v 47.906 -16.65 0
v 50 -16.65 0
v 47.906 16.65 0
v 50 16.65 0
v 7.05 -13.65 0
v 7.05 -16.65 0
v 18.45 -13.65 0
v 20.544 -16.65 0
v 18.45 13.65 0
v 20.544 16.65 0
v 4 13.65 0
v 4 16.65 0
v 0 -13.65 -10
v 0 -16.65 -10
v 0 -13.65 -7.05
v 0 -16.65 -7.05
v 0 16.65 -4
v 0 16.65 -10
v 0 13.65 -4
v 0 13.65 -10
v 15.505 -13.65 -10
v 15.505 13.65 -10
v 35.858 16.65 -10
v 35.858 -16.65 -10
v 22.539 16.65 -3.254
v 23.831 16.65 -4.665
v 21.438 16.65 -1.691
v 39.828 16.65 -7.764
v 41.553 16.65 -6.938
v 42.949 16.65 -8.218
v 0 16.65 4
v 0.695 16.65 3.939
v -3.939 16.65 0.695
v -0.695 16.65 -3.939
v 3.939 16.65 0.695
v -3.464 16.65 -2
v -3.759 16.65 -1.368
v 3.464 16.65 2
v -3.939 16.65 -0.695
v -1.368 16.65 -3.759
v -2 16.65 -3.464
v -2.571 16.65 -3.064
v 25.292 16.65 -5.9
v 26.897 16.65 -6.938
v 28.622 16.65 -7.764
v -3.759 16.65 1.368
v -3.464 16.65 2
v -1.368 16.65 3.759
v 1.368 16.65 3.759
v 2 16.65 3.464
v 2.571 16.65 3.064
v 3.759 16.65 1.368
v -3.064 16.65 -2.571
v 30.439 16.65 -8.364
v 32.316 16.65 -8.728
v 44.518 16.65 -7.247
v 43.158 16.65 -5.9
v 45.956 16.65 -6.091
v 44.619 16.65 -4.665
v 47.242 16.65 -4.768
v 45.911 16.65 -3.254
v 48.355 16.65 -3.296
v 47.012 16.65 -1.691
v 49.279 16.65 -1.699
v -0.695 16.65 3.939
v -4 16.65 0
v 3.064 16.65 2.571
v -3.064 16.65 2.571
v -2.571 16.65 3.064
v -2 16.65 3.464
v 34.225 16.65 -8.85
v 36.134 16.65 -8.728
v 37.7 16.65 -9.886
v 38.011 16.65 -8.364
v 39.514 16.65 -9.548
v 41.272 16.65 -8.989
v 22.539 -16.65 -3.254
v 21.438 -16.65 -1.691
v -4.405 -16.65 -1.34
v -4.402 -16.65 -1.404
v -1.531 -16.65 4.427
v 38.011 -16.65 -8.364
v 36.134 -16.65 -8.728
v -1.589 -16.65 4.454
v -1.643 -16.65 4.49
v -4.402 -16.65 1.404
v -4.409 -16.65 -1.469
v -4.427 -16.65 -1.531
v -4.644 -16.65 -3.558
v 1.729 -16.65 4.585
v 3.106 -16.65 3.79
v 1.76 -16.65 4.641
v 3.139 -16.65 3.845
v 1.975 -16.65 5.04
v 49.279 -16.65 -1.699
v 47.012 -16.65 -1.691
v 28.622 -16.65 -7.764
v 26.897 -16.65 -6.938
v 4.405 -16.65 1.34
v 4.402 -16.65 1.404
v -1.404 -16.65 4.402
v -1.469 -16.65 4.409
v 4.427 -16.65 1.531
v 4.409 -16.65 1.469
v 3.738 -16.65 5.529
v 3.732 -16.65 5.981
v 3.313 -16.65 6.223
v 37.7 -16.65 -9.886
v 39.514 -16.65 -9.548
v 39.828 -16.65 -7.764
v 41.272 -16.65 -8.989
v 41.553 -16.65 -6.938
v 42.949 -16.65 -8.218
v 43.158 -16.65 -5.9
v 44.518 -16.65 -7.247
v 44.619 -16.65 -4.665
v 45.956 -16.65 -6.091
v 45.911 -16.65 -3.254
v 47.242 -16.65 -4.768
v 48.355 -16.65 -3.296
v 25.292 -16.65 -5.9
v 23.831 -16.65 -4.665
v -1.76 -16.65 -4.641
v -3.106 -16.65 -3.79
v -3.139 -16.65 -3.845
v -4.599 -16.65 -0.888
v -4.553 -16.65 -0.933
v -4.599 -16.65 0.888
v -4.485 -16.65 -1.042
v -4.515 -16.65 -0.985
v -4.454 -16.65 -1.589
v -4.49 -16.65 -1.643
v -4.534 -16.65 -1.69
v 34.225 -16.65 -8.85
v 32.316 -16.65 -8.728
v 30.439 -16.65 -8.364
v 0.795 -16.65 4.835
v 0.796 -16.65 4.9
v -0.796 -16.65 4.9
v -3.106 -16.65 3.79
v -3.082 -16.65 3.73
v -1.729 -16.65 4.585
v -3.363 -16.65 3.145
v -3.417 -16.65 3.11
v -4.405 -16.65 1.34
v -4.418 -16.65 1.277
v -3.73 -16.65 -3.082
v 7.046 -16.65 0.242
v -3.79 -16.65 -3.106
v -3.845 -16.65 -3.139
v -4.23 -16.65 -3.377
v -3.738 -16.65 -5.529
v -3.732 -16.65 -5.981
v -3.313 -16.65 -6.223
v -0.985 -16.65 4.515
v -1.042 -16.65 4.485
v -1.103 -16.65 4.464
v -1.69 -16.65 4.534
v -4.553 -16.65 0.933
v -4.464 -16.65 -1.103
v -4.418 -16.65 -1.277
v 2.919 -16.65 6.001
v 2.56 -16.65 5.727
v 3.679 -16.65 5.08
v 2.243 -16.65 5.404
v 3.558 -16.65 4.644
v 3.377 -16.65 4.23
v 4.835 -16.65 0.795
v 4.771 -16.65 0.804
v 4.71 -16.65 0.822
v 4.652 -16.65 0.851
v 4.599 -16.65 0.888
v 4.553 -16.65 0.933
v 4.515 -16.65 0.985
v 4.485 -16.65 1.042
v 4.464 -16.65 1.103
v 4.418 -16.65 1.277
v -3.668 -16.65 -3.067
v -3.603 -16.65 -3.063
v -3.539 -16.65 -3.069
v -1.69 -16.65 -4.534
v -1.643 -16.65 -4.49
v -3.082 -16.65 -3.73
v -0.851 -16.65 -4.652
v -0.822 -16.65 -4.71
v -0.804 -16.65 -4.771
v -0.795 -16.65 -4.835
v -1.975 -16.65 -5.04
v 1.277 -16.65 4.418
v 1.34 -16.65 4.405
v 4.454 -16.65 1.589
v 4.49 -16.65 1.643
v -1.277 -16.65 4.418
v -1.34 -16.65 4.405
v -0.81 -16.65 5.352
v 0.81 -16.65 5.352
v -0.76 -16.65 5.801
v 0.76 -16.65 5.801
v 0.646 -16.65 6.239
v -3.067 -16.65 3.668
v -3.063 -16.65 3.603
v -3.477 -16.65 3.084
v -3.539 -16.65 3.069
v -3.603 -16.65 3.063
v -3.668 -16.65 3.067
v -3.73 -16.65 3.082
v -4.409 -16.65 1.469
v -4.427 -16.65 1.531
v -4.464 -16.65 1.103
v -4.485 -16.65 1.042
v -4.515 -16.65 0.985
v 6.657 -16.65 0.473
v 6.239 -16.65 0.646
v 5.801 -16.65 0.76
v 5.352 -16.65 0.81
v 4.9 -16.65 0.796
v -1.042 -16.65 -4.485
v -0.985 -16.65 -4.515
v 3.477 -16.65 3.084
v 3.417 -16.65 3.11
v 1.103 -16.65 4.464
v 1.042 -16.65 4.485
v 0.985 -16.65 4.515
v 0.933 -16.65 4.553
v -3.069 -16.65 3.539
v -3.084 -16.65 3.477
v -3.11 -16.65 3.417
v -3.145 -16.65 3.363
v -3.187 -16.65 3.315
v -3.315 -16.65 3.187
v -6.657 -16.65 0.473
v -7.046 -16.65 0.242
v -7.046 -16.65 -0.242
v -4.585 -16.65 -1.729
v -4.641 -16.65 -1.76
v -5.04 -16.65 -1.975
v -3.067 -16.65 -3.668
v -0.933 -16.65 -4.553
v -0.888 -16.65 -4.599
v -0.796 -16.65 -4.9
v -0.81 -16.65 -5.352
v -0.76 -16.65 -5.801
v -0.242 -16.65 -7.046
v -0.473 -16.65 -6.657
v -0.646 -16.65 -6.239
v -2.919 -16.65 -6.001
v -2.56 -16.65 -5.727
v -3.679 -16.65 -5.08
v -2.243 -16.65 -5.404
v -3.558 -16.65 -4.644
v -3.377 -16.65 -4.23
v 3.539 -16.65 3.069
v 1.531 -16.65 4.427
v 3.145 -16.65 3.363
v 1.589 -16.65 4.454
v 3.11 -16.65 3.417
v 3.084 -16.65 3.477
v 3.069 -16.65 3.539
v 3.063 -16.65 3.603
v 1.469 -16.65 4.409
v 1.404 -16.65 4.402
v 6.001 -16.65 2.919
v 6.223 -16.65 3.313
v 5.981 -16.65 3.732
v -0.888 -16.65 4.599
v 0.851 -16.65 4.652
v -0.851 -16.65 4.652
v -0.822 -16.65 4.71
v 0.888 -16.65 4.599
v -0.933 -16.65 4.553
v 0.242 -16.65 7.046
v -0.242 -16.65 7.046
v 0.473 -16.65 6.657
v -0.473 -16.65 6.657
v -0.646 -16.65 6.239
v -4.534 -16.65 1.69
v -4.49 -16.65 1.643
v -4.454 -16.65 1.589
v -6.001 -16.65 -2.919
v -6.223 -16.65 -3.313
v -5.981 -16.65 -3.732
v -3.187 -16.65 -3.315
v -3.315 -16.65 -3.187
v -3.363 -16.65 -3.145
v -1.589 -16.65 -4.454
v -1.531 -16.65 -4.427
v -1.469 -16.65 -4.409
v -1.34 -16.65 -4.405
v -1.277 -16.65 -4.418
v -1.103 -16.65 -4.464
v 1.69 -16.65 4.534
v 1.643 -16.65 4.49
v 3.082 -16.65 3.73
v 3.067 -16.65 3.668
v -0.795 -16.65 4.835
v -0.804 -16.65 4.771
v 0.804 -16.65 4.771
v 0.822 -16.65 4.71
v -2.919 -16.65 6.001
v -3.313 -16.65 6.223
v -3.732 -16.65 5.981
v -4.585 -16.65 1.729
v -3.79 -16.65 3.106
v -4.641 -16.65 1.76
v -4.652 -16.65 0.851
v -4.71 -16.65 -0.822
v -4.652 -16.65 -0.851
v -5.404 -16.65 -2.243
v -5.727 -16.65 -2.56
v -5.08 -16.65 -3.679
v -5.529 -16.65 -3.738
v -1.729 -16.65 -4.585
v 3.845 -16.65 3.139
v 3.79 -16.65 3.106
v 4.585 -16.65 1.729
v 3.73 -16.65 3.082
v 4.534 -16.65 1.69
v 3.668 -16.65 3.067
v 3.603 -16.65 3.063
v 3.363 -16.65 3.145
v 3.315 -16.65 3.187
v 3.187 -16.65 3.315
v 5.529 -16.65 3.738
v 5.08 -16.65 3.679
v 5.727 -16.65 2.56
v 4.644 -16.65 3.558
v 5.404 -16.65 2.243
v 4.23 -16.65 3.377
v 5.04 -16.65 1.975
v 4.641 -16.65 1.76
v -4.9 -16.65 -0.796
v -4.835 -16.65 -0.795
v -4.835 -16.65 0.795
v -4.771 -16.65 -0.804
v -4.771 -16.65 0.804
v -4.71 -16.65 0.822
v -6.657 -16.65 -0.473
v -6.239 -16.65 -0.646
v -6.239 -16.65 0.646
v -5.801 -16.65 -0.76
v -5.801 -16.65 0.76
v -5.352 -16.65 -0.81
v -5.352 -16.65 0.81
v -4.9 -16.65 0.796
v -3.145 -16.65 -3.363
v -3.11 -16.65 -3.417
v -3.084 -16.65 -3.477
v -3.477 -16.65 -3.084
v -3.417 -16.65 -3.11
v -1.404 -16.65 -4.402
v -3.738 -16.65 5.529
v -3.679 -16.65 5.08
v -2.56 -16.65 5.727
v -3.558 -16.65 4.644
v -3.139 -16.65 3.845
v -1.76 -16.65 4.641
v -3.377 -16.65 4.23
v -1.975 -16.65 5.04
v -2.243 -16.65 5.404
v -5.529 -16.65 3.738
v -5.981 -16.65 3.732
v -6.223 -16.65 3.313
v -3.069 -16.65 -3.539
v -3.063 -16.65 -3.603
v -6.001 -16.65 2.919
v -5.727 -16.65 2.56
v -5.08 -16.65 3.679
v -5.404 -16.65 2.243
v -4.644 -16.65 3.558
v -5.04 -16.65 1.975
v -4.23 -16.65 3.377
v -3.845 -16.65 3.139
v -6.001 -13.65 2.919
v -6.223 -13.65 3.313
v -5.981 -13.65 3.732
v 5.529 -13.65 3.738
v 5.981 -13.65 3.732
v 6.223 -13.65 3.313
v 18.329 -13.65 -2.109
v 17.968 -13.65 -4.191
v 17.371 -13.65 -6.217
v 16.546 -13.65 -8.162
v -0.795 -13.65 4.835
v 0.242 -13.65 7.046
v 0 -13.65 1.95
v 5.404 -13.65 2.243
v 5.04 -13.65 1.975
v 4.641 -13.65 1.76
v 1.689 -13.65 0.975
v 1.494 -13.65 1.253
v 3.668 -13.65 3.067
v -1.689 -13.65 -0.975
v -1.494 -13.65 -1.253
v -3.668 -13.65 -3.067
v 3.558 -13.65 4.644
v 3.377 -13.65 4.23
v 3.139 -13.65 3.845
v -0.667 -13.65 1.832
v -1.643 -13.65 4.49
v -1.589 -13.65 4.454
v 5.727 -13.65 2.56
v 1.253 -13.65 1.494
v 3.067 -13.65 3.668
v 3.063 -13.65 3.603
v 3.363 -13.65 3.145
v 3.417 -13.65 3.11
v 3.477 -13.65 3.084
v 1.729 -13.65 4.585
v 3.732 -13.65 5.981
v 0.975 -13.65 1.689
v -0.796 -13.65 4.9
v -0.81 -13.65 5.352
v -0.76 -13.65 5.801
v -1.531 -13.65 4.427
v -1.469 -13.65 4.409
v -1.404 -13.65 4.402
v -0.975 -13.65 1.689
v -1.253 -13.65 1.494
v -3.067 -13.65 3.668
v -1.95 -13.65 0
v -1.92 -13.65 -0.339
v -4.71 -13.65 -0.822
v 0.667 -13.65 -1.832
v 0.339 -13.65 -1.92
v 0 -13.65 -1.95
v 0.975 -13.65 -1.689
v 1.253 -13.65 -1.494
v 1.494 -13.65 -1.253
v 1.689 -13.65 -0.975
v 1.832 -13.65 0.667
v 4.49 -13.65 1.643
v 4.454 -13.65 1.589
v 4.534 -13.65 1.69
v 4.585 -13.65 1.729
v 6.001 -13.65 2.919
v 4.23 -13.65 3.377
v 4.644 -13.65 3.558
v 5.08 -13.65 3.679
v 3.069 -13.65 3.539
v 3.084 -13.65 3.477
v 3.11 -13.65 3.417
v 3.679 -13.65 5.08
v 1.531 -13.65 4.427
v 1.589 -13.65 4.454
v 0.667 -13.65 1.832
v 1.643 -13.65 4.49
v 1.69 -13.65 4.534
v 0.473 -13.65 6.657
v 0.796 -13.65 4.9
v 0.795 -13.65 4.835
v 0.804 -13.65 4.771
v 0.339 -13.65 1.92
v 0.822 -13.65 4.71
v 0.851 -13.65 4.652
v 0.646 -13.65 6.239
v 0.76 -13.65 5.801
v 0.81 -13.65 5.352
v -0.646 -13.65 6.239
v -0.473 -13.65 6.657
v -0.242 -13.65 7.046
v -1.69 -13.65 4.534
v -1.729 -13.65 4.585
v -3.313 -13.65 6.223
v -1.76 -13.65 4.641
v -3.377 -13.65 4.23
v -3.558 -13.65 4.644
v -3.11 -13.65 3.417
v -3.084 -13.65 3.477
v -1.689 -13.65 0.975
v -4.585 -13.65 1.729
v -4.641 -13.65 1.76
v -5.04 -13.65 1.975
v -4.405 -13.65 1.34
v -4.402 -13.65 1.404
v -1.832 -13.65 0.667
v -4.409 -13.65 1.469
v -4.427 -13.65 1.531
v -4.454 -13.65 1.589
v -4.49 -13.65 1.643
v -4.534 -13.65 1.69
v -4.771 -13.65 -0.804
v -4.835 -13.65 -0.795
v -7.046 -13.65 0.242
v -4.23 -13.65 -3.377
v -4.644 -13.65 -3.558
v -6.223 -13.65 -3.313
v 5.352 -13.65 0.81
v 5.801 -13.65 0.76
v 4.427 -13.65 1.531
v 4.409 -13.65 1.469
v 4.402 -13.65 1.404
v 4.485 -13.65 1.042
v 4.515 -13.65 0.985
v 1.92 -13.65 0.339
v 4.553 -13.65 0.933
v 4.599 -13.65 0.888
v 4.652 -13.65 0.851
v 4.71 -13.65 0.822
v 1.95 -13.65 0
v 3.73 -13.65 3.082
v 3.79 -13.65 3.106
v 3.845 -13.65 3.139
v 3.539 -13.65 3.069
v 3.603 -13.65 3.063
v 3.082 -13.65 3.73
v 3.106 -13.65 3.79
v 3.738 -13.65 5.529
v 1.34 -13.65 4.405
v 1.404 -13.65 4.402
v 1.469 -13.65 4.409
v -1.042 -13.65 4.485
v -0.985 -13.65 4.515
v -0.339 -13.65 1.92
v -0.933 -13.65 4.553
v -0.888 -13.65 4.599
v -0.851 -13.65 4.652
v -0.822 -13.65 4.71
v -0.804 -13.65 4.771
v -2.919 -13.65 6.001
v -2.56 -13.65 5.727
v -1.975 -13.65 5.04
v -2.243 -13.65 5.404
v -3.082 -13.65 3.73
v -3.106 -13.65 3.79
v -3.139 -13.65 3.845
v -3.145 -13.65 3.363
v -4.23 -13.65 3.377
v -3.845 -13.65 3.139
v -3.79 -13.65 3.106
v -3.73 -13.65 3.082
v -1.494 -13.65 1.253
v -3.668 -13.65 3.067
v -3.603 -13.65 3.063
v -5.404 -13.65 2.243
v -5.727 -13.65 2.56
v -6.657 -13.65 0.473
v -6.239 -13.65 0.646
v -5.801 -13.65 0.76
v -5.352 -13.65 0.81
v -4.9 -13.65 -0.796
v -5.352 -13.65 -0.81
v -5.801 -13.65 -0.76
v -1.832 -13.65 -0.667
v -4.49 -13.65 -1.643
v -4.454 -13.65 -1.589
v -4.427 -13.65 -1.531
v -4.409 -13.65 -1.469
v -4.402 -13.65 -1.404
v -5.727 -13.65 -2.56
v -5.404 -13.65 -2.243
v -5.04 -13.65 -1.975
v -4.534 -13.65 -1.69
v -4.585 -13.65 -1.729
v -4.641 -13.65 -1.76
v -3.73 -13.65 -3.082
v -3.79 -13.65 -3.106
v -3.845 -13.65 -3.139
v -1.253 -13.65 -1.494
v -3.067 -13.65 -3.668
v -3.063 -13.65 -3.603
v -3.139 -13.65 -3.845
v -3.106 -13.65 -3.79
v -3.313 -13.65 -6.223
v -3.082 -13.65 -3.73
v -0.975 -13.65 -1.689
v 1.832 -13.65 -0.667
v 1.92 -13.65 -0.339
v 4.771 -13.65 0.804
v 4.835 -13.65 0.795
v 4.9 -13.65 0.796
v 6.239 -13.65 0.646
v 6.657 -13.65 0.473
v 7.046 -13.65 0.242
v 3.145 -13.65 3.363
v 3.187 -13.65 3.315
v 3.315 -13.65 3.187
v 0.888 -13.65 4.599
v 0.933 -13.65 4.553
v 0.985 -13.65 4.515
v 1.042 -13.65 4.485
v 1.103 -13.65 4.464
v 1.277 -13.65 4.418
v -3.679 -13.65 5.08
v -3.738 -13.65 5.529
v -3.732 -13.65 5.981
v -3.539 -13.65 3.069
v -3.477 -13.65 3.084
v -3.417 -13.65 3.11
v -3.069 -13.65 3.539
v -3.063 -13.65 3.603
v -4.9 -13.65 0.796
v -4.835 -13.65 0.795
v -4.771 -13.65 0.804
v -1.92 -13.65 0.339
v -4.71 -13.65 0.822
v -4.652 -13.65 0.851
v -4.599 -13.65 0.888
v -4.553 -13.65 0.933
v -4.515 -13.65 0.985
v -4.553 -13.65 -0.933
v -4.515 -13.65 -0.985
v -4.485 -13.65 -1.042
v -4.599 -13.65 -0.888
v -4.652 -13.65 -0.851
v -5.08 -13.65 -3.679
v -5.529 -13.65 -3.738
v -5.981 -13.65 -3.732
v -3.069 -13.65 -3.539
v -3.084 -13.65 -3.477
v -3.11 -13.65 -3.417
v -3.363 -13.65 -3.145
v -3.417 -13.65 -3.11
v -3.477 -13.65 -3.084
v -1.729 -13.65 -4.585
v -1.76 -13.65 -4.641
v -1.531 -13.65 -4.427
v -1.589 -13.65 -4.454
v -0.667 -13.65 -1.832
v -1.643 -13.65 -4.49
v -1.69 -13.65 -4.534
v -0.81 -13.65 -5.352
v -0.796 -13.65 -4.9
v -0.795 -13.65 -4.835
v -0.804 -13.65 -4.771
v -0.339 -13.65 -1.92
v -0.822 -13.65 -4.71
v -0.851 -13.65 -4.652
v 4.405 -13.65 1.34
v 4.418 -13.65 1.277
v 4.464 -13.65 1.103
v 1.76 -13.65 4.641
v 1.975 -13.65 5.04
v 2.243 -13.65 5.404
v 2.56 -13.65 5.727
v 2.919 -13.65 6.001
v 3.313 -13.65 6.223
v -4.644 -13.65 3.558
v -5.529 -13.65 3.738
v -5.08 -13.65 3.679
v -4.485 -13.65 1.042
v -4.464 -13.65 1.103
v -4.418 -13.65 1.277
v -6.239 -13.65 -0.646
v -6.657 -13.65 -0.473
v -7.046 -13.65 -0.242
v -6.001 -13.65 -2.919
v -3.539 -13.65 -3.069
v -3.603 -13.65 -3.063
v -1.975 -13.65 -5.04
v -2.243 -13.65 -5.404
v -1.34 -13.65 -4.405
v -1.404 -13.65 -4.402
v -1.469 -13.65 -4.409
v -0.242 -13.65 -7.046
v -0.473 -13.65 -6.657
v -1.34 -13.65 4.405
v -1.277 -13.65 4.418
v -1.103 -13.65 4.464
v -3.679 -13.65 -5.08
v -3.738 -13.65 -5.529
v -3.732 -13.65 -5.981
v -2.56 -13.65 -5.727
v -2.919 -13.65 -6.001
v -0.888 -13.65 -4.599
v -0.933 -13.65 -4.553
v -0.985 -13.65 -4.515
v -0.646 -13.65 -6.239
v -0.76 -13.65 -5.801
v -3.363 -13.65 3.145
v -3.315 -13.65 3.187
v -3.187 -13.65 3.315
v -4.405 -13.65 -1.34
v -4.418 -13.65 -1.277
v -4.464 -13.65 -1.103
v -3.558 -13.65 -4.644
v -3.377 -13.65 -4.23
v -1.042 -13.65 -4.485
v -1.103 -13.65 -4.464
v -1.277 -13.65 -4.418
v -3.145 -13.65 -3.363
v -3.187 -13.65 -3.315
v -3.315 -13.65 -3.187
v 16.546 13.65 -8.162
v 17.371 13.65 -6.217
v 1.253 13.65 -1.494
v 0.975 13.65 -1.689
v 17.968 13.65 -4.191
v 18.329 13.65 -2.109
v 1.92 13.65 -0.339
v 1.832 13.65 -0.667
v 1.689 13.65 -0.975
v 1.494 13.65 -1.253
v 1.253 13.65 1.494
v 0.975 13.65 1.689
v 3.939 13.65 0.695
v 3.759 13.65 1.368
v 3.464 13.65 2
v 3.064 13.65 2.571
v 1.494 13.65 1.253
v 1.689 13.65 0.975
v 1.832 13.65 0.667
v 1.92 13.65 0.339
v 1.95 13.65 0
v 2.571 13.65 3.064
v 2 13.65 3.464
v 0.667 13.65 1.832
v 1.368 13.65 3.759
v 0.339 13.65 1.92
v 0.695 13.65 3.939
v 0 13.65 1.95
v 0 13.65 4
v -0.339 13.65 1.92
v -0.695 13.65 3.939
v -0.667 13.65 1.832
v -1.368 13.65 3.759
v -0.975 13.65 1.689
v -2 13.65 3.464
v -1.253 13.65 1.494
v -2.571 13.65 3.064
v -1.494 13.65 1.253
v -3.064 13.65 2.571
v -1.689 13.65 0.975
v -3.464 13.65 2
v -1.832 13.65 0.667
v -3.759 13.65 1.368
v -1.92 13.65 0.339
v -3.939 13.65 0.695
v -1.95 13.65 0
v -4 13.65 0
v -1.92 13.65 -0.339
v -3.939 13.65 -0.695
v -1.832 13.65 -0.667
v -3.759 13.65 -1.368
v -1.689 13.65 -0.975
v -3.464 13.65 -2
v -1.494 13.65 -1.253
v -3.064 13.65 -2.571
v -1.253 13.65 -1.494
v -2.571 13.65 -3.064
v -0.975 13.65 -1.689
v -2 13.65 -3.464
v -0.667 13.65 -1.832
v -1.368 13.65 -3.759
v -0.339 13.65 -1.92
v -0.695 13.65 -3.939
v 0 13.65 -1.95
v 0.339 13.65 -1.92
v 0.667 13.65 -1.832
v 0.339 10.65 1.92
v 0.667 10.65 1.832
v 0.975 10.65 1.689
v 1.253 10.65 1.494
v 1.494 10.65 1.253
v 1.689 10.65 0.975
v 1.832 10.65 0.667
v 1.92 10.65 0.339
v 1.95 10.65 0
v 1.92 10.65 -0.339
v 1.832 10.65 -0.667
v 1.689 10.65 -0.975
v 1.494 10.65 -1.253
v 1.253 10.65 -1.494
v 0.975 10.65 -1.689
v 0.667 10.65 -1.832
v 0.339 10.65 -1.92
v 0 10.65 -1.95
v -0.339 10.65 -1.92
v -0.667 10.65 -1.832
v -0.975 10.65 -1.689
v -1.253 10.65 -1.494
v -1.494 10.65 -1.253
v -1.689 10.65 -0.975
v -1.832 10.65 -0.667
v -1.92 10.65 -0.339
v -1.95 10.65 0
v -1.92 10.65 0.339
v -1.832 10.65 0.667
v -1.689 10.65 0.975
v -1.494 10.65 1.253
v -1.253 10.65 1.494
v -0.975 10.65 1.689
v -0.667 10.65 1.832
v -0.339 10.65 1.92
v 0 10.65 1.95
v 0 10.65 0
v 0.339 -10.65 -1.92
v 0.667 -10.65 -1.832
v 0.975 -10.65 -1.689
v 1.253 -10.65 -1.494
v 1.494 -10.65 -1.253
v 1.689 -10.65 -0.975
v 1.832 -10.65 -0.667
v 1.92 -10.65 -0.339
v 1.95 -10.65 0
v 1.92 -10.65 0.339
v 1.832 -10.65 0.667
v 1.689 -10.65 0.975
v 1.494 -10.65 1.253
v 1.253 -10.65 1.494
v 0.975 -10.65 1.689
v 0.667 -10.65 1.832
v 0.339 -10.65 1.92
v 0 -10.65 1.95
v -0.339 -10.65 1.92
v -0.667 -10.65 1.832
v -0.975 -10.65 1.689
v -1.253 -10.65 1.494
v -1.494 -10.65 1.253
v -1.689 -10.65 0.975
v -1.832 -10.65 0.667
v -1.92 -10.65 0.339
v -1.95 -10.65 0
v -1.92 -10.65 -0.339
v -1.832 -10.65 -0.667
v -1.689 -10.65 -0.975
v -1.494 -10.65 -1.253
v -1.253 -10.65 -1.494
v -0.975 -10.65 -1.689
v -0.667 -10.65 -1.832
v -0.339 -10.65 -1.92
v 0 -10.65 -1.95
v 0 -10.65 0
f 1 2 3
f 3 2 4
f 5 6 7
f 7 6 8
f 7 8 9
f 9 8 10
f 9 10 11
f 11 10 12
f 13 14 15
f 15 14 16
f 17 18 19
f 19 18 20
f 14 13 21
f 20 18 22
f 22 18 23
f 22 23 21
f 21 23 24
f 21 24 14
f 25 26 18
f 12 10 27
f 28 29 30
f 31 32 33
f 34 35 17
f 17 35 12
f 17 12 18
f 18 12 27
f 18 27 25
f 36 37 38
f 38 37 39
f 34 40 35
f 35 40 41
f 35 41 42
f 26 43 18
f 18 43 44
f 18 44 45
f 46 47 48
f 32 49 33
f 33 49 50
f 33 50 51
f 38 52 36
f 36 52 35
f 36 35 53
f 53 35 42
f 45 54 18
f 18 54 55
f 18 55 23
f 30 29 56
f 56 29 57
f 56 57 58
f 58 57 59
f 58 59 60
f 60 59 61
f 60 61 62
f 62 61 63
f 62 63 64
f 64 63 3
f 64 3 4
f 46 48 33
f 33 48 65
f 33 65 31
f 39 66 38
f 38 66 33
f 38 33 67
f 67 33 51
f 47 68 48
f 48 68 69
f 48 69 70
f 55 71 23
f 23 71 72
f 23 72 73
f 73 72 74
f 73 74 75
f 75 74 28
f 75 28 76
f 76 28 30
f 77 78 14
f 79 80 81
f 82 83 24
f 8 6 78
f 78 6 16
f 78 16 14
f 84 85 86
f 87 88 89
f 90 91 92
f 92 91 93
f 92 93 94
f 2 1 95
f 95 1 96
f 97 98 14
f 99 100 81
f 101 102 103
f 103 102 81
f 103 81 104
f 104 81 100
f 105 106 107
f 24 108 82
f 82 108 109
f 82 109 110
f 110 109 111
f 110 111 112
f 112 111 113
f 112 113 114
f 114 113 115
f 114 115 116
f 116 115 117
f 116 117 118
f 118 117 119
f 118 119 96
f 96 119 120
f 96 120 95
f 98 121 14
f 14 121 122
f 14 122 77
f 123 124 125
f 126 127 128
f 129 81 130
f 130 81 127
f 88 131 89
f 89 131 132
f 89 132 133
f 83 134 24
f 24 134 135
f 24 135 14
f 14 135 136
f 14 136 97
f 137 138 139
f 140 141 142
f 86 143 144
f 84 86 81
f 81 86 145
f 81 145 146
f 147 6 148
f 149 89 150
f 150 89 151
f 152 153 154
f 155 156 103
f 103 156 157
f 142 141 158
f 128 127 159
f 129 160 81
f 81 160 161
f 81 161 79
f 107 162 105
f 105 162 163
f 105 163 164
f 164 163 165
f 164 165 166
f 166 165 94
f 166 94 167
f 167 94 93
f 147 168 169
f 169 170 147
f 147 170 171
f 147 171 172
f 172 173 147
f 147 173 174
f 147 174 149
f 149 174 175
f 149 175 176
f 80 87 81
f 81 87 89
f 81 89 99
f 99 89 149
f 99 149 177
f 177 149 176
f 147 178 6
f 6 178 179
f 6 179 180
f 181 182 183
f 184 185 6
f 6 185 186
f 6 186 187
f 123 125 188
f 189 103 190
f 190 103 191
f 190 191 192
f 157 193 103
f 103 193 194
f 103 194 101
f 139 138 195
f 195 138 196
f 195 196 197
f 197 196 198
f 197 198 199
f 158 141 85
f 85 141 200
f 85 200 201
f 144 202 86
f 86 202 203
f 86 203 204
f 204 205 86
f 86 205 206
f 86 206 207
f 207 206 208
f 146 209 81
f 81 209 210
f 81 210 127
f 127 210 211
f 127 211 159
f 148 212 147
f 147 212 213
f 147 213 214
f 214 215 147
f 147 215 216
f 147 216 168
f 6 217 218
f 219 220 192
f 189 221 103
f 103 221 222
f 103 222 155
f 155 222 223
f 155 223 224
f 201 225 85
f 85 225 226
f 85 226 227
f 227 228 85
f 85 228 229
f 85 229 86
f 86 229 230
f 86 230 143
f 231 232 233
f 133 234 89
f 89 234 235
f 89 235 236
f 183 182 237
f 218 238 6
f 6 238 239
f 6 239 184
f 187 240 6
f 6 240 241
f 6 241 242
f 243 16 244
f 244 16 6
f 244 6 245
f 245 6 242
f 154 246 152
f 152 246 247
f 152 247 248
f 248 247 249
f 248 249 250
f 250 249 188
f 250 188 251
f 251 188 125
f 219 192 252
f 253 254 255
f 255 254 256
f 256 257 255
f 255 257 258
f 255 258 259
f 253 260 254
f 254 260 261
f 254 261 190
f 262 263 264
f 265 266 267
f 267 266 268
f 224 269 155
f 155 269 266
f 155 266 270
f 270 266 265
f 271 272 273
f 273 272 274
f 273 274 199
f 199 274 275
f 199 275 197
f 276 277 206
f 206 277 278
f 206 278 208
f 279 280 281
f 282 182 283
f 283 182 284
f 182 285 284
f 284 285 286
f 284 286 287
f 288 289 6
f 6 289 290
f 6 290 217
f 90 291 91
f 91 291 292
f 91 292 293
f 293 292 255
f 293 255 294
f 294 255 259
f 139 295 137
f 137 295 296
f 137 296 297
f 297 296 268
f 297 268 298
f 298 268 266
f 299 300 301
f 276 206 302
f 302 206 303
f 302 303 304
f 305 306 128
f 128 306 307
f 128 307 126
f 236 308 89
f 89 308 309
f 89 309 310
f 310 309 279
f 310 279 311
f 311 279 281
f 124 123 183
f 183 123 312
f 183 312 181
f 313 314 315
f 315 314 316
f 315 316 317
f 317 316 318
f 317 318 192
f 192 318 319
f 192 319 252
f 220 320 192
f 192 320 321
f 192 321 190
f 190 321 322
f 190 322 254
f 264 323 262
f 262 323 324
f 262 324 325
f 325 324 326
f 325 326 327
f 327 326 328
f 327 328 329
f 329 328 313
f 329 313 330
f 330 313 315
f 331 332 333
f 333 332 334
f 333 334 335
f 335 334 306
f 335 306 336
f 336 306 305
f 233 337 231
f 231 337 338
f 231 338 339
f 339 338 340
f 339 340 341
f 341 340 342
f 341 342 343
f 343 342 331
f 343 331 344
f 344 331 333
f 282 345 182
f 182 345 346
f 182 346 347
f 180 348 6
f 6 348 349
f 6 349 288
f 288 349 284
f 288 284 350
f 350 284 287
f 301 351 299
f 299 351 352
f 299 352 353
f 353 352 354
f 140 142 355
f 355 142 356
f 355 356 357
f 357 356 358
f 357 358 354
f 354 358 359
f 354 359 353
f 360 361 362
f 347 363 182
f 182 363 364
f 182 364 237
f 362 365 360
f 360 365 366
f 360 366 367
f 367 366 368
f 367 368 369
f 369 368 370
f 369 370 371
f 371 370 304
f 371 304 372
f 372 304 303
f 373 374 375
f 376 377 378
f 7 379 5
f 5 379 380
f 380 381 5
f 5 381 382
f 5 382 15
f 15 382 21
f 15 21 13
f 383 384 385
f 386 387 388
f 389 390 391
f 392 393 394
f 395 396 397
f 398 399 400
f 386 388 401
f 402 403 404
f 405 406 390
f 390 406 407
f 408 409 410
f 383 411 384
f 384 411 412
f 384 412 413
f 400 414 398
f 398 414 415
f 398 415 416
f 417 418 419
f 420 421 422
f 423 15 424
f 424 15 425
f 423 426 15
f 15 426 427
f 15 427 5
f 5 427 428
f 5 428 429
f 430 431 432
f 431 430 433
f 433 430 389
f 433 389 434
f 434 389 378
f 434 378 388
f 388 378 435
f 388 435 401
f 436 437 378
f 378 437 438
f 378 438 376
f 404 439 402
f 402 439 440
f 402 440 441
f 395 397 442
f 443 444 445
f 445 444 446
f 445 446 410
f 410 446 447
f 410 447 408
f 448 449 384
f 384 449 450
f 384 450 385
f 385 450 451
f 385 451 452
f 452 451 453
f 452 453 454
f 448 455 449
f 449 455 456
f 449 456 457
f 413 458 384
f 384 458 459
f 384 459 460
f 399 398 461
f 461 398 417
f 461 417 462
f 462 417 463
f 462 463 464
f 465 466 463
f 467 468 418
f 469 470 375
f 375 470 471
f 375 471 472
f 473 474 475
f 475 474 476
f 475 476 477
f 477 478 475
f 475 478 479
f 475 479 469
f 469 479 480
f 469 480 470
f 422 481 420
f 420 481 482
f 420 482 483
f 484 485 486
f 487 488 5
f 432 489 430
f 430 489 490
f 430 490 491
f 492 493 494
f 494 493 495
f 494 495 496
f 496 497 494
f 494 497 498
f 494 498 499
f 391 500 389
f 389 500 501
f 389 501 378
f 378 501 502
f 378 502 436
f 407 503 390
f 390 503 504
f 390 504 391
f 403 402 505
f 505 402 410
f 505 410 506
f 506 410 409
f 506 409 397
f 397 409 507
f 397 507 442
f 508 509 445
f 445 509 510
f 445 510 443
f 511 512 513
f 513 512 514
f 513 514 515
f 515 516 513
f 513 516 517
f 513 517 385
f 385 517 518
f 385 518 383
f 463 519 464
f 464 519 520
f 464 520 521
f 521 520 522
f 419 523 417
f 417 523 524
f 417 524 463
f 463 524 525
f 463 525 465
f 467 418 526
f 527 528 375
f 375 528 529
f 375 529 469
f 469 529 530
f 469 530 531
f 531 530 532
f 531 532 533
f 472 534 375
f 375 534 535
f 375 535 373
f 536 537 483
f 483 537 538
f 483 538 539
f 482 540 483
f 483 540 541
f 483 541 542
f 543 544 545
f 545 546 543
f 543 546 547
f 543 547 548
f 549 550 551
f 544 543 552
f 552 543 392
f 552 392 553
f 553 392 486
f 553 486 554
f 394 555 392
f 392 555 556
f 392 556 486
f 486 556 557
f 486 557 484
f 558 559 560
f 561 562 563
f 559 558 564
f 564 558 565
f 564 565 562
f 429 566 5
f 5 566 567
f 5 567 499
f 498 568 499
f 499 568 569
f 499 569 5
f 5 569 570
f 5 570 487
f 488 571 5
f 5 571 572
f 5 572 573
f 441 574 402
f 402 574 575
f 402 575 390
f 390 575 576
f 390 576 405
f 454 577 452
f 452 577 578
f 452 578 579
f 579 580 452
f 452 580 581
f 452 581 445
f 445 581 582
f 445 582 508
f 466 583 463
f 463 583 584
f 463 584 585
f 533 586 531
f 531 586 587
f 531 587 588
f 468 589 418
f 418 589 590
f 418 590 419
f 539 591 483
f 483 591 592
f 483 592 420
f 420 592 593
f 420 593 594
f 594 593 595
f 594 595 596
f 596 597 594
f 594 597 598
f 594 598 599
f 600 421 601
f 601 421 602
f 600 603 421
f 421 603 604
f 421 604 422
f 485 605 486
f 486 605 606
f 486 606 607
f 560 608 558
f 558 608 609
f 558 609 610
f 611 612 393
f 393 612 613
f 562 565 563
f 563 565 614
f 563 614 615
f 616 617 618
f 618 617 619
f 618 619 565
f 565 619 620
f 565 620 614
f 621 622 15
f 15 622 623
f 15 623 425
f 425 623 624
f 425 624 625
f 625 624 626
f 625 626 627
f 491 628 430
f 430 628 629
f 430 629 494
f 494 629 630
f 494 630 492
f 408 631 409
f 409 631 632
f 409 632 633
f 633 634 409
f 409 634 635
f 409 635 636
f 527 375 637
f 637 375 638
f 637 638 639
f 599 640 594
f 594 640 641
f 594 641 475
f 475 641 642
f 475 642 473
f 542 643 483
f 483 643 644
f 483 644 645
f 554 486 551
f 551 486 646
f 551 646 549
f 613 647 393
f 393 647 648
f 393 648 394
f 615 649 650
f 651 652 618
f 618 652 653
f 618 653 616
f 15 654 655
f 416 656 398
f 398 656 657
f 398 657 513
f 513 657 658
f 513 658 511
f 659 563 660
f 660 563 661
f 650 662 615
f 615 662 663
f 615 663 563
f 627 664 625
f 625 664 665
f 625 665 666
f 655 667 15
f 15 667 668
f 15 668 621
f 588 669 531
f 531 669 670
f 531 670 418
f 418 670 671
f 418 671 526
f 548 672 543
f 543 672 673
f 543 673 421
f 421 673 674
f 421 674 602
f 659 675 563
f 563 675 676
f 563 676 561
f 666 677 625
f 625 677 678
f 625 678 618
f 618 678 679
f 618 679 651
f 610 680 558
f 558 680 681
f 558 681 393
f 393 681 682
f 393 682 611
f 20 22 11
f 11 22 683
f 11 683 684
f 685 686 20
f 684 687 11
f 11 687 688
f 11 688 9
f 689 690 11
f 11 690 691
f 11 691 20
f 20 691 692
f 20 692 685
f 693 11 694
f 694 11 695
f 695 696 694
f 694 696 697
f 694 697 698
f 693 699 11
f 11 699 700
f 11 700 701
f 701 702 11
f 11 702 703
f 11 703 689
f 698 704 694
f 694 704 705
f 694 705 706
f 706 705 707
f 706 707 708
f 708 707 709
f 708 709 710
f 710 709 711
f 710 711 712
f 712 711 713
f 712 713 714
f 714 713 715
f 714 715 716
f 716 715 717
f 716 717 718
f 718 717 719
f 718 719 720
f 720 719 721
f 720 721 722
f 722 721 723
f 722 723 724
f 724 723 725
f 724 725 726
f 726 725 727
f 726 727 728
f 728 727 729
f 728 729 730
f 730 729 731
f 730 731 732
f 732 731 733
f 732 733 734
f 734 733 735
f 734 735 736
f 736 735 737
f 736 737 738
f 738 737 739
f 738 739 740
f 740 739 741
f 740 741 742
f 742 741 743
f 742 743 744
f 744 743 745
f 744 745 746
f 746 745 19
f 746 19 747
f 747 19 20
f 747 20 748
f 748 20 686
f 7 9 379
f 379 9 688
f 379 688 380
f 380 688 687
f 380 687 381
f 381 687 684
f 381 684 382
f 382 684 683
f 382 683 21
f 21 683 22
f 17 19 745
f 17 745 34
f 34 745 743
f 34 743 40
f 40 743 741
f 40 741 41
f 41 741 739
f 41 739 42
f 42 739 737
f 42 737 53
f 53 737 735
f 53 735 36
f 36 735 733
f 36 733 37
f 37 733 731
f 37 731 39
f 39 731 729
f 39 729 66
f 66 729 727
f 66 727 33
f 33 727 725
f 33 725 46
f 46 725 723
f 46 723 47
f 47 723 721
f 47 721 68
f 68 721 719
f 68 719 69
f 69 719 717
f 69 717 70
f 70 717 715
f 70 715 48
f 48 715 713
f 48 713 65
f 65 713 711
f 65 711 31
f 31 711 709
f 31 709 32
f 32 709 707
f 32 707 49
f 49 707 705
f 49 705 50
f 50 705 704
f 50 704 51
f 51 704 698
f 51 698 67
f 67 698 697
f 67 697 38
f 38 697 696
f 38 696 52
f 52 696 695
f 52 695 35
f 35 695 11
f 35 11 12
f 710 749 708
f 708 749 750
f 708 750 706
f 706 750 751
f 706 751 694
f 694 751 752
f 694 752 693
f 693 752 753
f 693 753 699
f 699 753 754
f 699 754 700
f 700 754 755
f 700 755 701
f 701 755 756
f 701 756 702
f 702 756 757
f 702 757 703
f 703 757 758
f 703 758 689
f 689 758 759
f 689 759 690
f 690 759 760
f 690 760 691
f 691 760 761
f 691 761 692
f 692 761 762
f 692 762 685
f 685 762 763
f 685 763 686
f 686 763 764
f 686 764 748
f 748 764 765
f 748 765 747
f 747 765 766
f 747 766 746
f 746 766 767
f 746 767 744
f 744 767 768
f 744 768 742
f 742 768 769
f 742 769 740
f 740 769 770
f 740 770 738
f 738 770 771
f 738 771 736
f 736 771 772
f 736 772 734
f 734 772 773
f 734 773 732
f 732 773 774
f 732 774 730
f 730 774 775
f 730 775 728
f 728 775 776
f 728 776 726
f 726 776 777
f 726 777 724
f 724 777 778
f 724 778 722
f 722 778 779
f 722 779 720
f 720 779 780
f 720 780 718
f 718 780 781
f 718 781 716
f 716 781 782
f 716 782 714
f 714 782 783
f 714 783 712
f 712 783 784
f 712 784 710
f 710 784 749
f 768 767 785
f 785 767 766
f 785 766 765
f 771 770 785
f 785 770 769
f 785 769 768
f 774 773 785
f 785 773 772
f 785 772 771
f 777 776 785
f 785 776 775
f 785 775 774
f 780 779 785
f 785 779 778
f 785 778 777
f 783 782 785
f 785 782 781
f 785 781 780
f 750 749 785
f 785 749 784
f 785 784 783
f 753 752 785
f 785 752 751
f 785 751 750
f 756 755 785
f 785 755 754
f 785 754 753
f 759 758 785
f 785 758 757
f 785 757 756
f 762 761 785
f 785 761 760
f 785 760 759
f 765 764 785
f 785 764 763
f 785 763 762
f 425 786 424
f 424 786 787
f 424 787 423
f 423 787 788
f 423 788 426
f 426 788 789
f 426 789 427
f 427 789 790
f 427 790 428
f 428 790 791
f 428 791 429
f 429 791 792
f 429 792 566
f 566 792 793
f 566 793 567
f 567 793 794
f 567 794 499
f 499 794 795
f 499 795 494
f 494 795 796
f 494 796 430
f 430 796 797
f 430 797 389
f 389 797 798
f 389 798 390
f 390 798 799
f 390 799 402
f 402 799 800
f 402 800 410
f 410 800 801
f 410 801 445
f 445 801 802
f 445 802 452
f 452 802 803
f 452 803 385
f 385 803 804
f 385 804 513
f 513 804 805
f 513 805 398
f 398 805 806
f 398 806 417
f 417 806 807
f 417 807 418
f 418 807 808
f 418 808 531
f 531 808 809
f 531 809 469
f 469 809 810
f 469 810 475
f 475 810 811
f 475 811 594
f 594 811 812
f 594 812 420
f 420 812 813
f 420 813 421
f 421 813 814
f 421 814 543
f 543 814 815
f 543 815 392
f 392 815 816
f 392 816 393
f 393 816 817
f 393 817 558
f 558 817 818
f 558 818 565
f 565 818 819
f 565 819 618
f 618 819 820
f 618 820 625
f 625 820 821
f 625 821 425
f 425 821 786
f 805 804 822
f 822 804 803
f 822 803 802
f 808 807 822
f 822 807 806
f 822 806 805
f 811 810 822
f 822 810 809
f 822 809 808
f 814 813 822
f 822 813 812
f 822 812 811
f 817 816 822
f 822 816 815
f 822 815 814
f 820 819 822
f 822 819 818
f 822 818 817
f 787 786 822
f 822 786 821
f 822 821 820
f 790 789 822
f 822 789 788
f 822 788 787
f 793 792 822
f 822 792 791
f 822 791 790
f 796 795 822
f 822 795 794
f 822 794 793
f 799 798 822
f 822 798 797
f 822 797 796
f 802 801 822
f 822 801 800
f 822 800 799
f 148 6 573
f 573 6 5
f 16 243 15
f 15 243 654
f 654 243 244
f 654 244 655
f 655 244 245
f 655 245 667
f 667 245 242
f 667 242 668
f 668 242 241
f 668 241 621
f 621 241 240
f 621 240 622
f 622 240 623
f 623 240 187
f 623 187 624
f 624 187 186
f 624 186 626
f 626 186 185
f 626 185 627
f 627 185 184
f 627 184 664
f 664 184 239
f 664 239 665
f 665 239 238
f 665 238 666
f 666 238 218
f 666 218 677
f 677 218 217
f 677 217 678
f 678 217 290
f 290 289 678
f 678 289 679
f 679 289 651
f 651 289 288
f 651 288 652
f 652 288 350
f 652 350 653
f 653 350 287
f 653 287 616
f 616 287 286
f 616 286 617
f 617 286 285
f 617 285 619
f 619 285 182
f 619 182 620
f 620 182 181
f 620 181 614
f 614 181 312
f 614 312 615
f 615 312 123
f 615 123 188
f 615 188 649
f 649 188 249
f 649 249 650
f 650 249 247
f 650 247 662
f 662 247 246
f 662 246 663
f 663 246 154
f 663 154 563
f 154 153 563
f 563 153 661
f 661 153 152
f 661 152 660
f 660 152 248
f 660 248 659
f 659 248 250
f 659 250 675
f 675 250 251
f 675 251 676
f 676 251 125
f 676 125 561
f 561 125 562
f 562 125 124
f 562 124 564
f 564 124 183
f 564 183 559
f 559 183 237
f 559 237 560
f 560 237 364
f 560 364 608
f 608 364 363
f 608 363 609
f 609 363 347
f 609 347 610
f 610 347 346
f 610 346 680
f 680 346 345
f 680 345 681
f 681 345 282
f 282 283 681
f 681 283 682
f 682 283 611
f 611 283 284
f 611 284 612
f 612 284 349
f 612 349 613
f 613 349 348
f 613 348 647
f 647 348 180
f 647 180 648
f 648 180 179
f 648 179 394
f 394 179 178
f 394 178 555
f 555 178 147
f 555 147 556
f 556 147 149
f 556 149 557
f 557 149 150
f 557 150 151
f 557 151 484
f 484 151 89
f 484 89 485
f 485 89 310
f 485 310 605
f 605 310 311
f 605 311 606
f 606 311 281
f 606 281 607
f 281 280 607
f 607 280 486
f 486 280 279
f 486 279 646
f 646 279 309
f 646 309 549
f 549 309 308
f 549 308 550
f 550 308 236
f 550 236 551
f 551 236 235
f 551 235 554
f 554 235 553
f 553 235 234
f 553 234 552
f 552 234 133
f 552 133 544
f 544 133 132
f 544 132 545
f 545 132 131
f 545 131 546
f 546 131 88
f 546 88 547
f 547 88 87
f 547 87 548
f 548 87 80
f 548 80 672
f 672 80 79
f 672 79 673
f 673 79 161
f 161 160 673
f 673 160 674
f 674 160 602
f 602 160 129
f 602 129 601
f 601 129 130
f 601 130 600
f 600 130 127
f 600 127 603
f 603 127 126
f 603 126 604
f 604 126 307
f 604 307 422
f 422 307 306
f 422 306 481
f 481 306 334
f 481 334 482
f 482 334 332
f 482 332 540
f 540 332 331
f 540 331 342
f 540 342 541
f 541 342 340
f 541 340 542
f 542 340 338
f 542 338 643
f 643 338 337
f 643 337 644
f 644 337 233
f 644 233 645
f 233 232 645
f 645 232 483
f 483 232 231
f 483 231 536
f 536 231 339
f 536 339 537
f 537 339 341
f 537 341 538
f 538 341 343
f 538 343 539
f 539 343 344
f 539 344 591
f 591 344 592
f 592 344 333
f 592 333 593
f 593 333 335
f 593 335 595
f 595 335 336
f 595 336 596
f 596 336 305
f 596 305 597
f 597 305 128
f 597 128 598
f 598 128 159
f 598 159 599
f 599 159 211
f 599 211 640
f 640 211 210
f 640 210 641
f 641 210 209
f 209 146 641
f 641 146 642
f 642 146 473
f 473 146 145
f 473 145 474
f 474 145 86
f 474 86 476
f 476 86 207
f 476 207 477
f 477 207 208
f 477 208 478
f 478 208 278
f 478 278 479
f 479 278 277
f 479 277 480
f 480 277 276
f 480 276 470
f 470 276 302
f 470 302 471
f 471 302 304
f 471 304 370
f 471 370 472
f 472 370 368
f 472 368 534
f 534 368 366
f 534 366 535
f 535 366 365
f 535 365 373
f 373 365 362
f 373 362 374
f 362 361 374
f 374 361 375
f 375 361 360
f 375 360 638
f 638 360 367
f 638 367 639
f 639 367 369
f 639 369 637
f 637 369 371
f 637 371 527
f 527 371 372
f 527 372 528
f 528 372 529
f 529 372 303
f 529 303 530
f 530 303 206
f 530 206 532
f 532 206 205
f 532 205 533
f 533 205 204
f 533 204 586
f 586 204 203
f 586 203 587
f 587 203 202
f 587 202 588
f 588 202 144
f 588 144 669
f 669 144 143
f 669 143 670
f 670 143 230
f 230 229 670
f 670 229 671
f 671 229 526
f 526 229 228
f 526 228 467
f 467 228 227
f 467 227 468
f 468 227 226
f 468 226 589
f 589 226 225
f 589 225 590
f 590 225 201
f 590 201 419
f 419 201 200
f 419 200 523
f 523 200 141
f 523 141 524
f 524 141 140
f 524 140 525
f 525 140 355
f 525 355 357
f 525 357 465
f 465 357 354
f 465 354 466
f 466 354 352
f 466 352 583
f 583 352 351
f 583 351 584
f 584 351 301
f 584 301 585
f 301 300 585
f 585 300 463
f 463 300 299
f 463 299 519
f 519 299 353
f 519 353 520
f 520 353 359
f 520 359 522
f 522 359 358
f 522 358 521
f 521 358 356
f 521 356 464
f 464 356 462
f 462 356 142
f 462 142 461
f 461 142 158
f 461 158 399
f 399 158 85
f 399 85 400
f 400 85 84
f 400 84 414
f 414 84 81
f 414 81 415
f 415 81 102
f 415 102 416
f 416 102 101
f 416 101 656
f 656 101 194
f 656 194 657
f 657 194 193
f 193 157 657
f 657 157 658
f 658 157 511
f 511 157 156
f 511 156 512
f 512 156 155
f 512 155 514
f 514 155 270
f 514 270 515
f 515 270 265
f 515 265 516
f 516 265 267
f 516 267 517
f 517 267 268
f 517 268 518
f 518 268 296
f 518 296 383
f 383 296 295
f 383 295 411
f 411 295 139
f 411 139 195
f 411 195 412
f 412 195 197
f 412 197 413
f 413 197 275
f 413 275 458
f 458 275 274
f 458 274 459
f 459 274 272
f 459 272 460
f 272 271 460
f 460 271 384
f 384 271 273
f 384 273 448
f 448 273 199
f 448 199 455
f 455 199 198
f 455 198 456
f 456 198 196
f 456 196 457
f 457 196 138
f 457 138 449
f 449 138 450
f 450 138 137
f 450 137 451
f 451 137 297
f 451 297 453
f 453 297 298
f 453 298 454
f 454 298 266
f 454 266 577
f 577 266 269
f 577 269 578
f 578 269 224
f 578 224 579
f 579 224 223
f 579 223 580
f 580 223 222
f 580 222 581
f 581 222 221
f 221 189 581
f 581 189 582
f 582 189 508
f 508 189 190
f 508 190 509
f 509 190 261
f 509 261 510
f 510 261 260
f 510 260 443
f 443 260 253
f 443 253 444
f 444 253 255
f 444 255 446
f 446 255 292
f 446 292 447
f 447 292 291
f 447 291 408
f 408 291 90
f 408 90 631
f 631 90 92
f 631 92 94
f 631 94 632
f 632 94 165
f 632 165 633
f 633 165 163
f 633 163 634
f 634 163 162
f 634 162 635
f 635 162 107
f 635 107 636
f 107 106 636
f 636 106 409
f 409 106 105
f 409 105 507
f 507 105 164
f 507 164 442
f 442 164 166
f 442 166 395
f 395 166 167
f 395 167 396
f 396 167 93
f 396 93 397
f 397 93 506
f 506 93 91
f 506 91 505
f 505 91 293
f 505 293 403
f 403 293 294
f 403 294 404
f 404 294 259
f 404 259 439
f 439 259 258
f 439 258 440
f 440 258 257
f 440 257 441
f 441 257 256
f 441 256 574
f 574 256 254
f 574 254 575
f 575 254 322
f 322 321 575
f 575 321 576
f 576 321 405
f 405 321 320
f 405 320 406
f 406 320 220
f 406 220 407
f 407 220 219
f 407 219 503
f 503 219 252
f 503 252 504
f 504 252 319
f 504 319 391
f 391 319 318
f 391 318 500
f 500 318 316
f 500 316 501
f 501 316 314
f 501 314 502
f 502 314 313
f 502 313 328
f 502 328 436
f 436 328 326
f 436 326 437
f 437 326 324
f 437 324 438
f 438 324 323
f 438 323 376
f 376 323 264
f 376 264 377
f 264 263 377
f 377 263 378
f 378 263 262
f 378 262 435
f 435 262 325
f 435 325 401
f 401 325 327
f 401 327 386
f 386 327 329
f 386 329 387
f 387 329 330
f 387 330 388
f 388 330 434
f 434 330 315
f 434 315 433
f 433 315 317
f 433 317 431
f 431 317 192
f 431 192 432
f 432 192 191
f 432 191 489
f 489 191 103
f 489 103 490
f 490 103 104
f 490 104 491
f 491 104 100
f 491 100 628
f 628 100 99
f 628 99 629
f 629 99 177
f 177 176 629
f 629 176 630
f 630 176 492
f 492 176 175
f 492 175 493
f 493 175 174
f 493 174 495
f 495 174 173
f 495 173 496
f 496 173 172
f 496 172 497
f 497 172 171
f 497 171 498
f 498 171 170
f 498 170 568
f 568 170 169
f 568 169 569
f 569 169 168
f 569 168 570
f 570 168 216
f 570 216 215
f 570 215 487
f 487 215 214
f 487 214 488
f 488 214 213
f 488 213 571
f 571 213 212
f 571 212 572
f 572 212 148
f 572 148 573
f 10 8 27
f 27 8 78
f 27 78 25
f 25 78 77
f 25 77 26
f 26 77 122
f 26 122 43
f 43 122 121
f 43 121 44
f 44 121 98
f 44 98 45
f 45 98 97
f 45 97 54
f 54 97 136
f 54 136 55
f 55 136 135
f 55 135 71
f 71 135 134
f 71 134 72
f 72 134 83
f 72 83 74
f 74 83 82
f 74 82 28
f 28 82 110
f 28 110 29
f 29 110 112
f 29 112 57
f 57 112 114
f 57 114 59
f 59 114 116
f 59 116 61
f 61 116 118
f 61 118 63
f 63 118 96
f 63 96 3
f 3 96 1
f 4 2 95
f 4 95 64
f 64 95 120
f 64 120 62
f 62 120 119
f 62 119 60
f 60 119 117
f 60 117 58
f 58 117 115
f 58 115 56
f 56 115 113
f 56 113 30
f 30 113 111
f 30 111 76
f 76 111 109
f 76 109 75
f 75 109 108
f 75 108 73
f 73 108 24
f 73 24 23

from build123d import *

# Parameters (mm, degrees)
SKETCH1_W           = 50
SKETCH1_H           = 10
BOSS_EXTRUDE2_DEPTH = 16.65
CUT_EXTRUDE1_START  = -27.3
SKETCH2_R           = 18.45
CUT_EXTRUDE1_DEPTH  = 27.3
SKETCH3_R           = 4
BOSS_EXTRUDE3_DEPTH = 3
BOSS_EXTRUDE4_START = 3
SKETCH5_R           = 4
BOSS_EXTRUDE4_DEPTH = 3
SKETCH4_R           = 1.95
BOSS_EXTRUDE6_DEPTH = 3
BOSS_EXTRUDE5_START = 3
SKETCH6_R           = 1.95
BOSS_EXTRUDE5_DEPTH = 3
BOSS_EXTRUDE7_DEPTH = 3
SKETCH8_R           = 15
CUT_EXTRUDE2_DEPTH  = 61.900656811
FILLET1_R           = 15


with BuildPart() as part:
    # Sketch1 → Boss-Extrude2 (new, symmetric)
    with BuildSketch(Plane(origin=(0, 0, 0), x_dir=(1, 0, 0), z_dir=(0, 1, 0))):
        with Locations((25, 5)):
            Rectangle(SKETCH1_W, SKETCH1_H)
    extrude(amount=BOSS_EXTRUDE2_DEPTH, both=True)

    # Sketch2 → Cut-Extrude1 (cut)
    with BuildSketch(Plane(origin=(0, 13.65, 0), x_dir=(1, 0, 0), z_dir=(0, 1, 0)).offset(CUT_EXTRUDE1_START)):
        Circle(SKETCH2_R)
    extrude(amount=CUT_EXTRUDE1_DEPTH, mode=Mode.SUBTRACT)

    # Sketch3 → Boss-Extrude3 (add)
    with BuildSketch(Plane(origin=(0, 13.65, 0), x_dir=(1, 0, 0), z_dir=(0, 1, 0))):
        Circle(SKETCH3_R)
    extrude(amount=BOSS_EXTRUDE3_DEPTH)

    # Sketch5 → Boss-Extrude4 (add)
    with BuildSketch(Plane(origin=(0, -13.65, 0), x_dir=(-1, 0, 0), z_dir=(0, -1, 0)).offset(BOSS_EXTRUDE4_START)):
        Circle(SKETCH5_R)
    extrude(amount=-BOSS_EXTRUDE4_DEPTH)

    # Sketch4 → Boss-Extrude6 (add)
    with BuildSketch(Plane.XZ.offset(-13.65)):
        with Locations(Location((0, 0, 0), (0, 0, 90))):
            Circle(SKETCH4_R)
    extrude(amount=BOSS_EXTRUDE6_DEPTH)

    # Sketch6 → Boss-Extrude5 (add)
    with BuildSketch(Plane(origin=(0, -13.65, 0), x_dir=(1, 0, 0), z_dir=(0, 1, 0)).offset(BOSS_EXTRUDE5_START)):
        with Locations(Location((0, 0, 0), (0, 0, 270))):
            Circle(SKETCH6_R)
    extrude(amount=-BOSS_EXTRUDE5_DEPTH)

    # Sketch7 → Boss-Extrude7 (add)
    with BuildSketch(Plane.XZ.offset(16.65)):
        with BuildLine():
            ThreePointArc((1.103045949, -4.464319525), (1.190197866, -4.441878907), (1.276893949, -4.417737093))
            ThreePointArc((1.276893949, -4.417737093), (1.56039667, -4.439315905), (1.760385559, -4.6414146))
            ThreePointArc((1.760385559, -4.6414146), (2.395683629, -5.570836958), (3.313490513, -6.222803277))
            ThreePointArc((3.313490513, -6.222803277), (3.525, -6.105479097), (3.732360464, -5.980968598))
            ThreePointArc((3.732360464, -5.980968598), (3.626644512, -4.860141361), (3.139390174, -3.845245915))
            ThreePointArc((3.139390174, -3.845245915), (3.064362014, -3.571001109), (3.187425576, -3.314691145))
            ThreePointArc((3.187425576, -3.314691145), (3.251681041, -3.251681041), (3.314691145, -3.187425576))
            ThreePointArc((3.314691145, -3.187425576), (3.571001109, -3.064362014), (3.845245915, -3.139390174))
            ThreePointArc((3.845245915, -3.139390174), (4.860141361, -3.626644512), (5.980968598, -3.732360464))
            ThreePointArc((5.980968598, -3.732360464), (6.105479097, -3.525), (6.222803277, -3.313490513))
            ThreePointArc((6.222803277, -3.313490513), (5.570836958, -2.395683629), (4.6414146, -1.760385559))
            ThreePointArc((4.6414146, -1.760385559), (4.439315905, -1.56039667), (4.417737093, -1.276893949))
            ThreePointArc((4.417737093, -1.276893949), (4.441878907, -1.190197866), (4.464319525, -1.103045949))
            ThreePointArc((4.464319525, -1.103045949), (4.624758685, -0.868314796), (4.899775733, -0.796168685))
            ThreePointArc((4.899775733, -0.796168685), (6.022328141, -0.710695597), (7.045850977, -0.241834679))
            ThreePointArc((7.045850977, -0.241834679), (7.05, 0), (7.045850977, 0.241834679))
            ThreePointArc((7.045850977, 0.241834679), (6.022328141, 0.710695597), (4.899775733, 0.796168685))
            ThreePointArc((4.899775733, 0.796168685), (4.624758685, 0.868314796), (4.464319525, 1.103045949))
            ThreePointArc((4.464319525, 1.103045949), (4.441878907, 1.190197866), (4.417737093, 1.276893949))
            ThreePointArc((4.417737093, 1.276893949), (4.439315905, 1.56039667), (4.6414146, 1.760385559))
            ThreePointArc((4.6414146, 1.760385559), (5.570836958, 2.395683629), (6.222803277, 3.313490513))
            ThreePointArc((6.222803277, 3.313490513), (6.105479097, 3.525), (5.980968598, 3.732360464))
            ThreePointArc((5.980968598, 3.732360464), (4.860141361, 3.626644512), (3.845245915, 3.139390174))
            ThreePointArc((3.845245915, 3.139390174), (3.571001109, 3.064362014), (3.314691145, 3.187425576))
            ThreePointArc((3.314691145, 3.187425576), (3.251681041, 3.251681041), (3.187425576, 3.314691145))
            ThreePointArc((3.187425576, 3.314691145), (3.064362014, 3.571001109), (3.139390174, 3.845245915))
            ThreePointArc((3.139390174, 3.845245915), (3.626644512, 4.860141361), (3.732360464, 5.980968598))
            ThreePointArc((3.732360464, 5.980968598), (3.525, 6.105479097), (3.313490513, 6.222803277))
            ThreePointArc((3.313490513, 6.222803277), (2.395683629, 5.570836958), (1.760385559, 4.6414146))
            ThreePointArc((1.760385559, 4.6414146), (1.56039667, 4.439315905), (1.276893949, 4.417737093))
            ThreePointArc((1.276893949, 4.417737093), (1.190197866, 4.441878907), (1.103045949, 4.464319525))
            ThreePointArc((1.103045949, 4.464319525), (0.868314796, 4.624758685), (0.796168685, 4.899775733))
            ThreePointArc((0.796168685, 4.899775733), (0.710695597, 6.022328141), (0.241834679, 7.045850977))
            ThreePointArc((0.241834679, 7.045850977), (0, 7.05), (-0.241834679, 7.045850977))
            ThreePointArc((-0.241834679, 7.045850977), (-0.710695597, 6.022328141), (-0.796168685, 4.899775733))
            ThreePointArc((-0.796168685, 4.899775733), (-0.868314796, 4.624758685), (-1.103045949, 4.464319525))
            ThreePointArc((-1.103045949, 4.464319525), (-1.190197866, 4.441878907), (-1.276893949, 4.417737093))
            ThreePointArc((-1.276893949, 4.417737093), (-1.56039667, 4.439315905), (-1.760385559, 4.6414146))
            ThreePointArc((-1.760385559, 4.6414146), (-2.395683629, 5.570836958), (-3.313490513, 6.222803277))
            ThreePointArc((-3.313490513, 6.222803277), (-3.525, 6.105479097), (-3.732360464, 5.980968598))
            ThreePointArc((-3.732360464, 5.980968598), (-3.626644512, 4.860141361), (-3.139390174, 3.845245915))
            ThreePointArc((-3.139390174, 3.845245915), (-3.064362014, 3.571001109), (-3.187425576, 3.314691145))
            ThreePointArc((-3.187425576, 3.314691145), (-3.251681041, 3.251681041), (-3.314691145, 3.187425576))
            ThreePointArc((-3.314691145, 3.187425576), (-3.571001109, 3.064362014), (-3.845245915, 3.139390174))
            ThreePointArc((-3.845245915, 3.139390174), (-4.860141361, 3.626644512), (-5.980968598, 3.732360464))
            ThreePointArc((-5.980968598, 3.732360464), (-6.105479097, 3.525), (-6.222803277, 3.313490513))
            ThreePointArc((-6.222803277, 3.313490513), (-5.570836958, 2.395683629), (-4.6414146, 1.760385559))
            ThreePointArc((-4.6414146, 1.760385559), (-4.439315905, 1.56039667), (-4.417737093, 1.276893949))
            ThreePointArc((-4.417737093, 1.276893949), (-4.441878907, 1.190197866), (-4.464319525, 1.103045949))
            ThreePointArc((-4.464319525, 1.103045949), (-4.624758685, 0.868314796), (-4.899775733, 0.796168685))
            ThreePointArc((-4.899775733, 0.796168685), (-6.022328141, 0.710695597), (-7.045850977, 0.241834679))
            ThreePointArc((-7.045850977, 0.241834679), (-7.05, 0), (-7.045850977, -0.241834679))
            ThreePointArc((-7.045850977, -0.241834679), (-6.022328141, -0.710695597), (-4.899775733, -0.796168685))
            ThreePointArc((-4.899775733, -0.796168685), (-4.624758685, -0.868314796), (-4.464319525, -1.103045949))
            ThreePointArc((-4.464319525, -1.103045949), (-4.441878907, -1.190197866), (-4.417737093, -1.276893949))
            ThreePointArc((-4.417737093, -1.276893949), (-4.439315905, -1.56039667), (-4.6414146, -1.760385559))
            ThreePointArc((-4.6414146, -1.760385559), (-5.570836958, -2.395683629), (-6.222803277, -3.313490513))
            ThreePointArc((-6.222803277, -3.313490513), (-6.105479097, -3.525), (-5.980968598, -3.732360464))
            ThreePointArc((-5.980968598, -3.732360464), (-4.860141361, -3.626644512), (-3.845245915, -3.139390174))
            ThreePointArc((-3.845245915, -3.139390174), (-3.571001109, -3.064362014), (-3.314691145, -3.187425576))
            ThreePointArc((-3.314691145, -3.187425576), (-3.251681041, -3.251681041), (-3.187425576, -3.314691145))
            ThreePointArc((-3.187425576, -3.314691145), (-3.064362014, -3.571001109), (-3.139390174, -3.845245915))
            ThreePointArc((-3.139390174, -3.845245915), (-3.626644512, -4.860141361), (-3.732360464, -5.980968598))
            ThreePointArc((-3.732360464, -5.980968598), (-3.525, -6.105479097), (-3.313490513, -6.222803277))
            ThreePointArc((-3.313490513, -6.222803277), (-2.395683629, -5.570836958), (-1.760385559, -4.6414146))
            ThreePointArc((-1.760385559, -4.6414146), (-1.56039667, -4.439315905), (-1.276893949, -4.417737093))
            ThreePointArc((-1.276893949, -4.417737093), (-1.190197866, -4.441878907), (-1.103045949, -4.464319525))
            ThreePointArc((-1.103045949, -4.464319525), (-0.868314796, -4.624758685), (-0.796168685, -4.899775733))
            ThreePointArc((-0.796168685, -4.899775733), (-0.710695597, -6.022328141), (-0.241834679, -7.045850977))
            ThreePointArc((-0.241834679, -7.045850977), (0, -7.05), (0.241834679, -7.045850977))
            ThreePointArc((0.241834679, -7.045850977), (0.710695597, -6.022328141), (0.796168685, -4.899775733))
            ThreePointArc((0.796168685, -4.899775733), (0.868314796, -4.624758685), (1.103045949, -4.464319525))
        make_face()
    extrude(amount=-BOSS_EXTRUDE7_DEPTH)

    # Sketch8 → Cut-Extrude2 (cut, through all)
    with BuildSketch(Plane.XZ.offset(16.65)):
        with Locations((34.225, 6.15)):
            Circle(SKETCH8_R)
    extrude(amount=-CUT_EXTRUDE2_DEPTH, mode=Mode.SUBTRACT)

    # Fillet1
    # the kernel refuses this fillet: 15 mm, written as the material it takes off along each edge
    with BuildSketch(Plane(origin=(50, -52.005339059, -10), x_dir=(-1, 0, 0), z_dir=(0, 1, 0))) as fillet1_piece_1:
        with BuildLine():
            CenterArc((14.142135624, 15), FILLET1_R, 199.471220634, 70.528779366)
            Line((0, 10), (-0.282842712, 9.9))
            ThreePointArc((-0.282842712, 9.9), (-0.3, 5), (-0.3, 0))
            Line((-0.3, 0), (0, -0.3))
            Line((0, -0.3), (14.142135624, -0.3))
            Line((14.142135624, -0.3), (14.142135624, 0))
        make_face()
    extrude(amount=104.010678119, mode=Mode.SUBTRACT)


solid = part.part
